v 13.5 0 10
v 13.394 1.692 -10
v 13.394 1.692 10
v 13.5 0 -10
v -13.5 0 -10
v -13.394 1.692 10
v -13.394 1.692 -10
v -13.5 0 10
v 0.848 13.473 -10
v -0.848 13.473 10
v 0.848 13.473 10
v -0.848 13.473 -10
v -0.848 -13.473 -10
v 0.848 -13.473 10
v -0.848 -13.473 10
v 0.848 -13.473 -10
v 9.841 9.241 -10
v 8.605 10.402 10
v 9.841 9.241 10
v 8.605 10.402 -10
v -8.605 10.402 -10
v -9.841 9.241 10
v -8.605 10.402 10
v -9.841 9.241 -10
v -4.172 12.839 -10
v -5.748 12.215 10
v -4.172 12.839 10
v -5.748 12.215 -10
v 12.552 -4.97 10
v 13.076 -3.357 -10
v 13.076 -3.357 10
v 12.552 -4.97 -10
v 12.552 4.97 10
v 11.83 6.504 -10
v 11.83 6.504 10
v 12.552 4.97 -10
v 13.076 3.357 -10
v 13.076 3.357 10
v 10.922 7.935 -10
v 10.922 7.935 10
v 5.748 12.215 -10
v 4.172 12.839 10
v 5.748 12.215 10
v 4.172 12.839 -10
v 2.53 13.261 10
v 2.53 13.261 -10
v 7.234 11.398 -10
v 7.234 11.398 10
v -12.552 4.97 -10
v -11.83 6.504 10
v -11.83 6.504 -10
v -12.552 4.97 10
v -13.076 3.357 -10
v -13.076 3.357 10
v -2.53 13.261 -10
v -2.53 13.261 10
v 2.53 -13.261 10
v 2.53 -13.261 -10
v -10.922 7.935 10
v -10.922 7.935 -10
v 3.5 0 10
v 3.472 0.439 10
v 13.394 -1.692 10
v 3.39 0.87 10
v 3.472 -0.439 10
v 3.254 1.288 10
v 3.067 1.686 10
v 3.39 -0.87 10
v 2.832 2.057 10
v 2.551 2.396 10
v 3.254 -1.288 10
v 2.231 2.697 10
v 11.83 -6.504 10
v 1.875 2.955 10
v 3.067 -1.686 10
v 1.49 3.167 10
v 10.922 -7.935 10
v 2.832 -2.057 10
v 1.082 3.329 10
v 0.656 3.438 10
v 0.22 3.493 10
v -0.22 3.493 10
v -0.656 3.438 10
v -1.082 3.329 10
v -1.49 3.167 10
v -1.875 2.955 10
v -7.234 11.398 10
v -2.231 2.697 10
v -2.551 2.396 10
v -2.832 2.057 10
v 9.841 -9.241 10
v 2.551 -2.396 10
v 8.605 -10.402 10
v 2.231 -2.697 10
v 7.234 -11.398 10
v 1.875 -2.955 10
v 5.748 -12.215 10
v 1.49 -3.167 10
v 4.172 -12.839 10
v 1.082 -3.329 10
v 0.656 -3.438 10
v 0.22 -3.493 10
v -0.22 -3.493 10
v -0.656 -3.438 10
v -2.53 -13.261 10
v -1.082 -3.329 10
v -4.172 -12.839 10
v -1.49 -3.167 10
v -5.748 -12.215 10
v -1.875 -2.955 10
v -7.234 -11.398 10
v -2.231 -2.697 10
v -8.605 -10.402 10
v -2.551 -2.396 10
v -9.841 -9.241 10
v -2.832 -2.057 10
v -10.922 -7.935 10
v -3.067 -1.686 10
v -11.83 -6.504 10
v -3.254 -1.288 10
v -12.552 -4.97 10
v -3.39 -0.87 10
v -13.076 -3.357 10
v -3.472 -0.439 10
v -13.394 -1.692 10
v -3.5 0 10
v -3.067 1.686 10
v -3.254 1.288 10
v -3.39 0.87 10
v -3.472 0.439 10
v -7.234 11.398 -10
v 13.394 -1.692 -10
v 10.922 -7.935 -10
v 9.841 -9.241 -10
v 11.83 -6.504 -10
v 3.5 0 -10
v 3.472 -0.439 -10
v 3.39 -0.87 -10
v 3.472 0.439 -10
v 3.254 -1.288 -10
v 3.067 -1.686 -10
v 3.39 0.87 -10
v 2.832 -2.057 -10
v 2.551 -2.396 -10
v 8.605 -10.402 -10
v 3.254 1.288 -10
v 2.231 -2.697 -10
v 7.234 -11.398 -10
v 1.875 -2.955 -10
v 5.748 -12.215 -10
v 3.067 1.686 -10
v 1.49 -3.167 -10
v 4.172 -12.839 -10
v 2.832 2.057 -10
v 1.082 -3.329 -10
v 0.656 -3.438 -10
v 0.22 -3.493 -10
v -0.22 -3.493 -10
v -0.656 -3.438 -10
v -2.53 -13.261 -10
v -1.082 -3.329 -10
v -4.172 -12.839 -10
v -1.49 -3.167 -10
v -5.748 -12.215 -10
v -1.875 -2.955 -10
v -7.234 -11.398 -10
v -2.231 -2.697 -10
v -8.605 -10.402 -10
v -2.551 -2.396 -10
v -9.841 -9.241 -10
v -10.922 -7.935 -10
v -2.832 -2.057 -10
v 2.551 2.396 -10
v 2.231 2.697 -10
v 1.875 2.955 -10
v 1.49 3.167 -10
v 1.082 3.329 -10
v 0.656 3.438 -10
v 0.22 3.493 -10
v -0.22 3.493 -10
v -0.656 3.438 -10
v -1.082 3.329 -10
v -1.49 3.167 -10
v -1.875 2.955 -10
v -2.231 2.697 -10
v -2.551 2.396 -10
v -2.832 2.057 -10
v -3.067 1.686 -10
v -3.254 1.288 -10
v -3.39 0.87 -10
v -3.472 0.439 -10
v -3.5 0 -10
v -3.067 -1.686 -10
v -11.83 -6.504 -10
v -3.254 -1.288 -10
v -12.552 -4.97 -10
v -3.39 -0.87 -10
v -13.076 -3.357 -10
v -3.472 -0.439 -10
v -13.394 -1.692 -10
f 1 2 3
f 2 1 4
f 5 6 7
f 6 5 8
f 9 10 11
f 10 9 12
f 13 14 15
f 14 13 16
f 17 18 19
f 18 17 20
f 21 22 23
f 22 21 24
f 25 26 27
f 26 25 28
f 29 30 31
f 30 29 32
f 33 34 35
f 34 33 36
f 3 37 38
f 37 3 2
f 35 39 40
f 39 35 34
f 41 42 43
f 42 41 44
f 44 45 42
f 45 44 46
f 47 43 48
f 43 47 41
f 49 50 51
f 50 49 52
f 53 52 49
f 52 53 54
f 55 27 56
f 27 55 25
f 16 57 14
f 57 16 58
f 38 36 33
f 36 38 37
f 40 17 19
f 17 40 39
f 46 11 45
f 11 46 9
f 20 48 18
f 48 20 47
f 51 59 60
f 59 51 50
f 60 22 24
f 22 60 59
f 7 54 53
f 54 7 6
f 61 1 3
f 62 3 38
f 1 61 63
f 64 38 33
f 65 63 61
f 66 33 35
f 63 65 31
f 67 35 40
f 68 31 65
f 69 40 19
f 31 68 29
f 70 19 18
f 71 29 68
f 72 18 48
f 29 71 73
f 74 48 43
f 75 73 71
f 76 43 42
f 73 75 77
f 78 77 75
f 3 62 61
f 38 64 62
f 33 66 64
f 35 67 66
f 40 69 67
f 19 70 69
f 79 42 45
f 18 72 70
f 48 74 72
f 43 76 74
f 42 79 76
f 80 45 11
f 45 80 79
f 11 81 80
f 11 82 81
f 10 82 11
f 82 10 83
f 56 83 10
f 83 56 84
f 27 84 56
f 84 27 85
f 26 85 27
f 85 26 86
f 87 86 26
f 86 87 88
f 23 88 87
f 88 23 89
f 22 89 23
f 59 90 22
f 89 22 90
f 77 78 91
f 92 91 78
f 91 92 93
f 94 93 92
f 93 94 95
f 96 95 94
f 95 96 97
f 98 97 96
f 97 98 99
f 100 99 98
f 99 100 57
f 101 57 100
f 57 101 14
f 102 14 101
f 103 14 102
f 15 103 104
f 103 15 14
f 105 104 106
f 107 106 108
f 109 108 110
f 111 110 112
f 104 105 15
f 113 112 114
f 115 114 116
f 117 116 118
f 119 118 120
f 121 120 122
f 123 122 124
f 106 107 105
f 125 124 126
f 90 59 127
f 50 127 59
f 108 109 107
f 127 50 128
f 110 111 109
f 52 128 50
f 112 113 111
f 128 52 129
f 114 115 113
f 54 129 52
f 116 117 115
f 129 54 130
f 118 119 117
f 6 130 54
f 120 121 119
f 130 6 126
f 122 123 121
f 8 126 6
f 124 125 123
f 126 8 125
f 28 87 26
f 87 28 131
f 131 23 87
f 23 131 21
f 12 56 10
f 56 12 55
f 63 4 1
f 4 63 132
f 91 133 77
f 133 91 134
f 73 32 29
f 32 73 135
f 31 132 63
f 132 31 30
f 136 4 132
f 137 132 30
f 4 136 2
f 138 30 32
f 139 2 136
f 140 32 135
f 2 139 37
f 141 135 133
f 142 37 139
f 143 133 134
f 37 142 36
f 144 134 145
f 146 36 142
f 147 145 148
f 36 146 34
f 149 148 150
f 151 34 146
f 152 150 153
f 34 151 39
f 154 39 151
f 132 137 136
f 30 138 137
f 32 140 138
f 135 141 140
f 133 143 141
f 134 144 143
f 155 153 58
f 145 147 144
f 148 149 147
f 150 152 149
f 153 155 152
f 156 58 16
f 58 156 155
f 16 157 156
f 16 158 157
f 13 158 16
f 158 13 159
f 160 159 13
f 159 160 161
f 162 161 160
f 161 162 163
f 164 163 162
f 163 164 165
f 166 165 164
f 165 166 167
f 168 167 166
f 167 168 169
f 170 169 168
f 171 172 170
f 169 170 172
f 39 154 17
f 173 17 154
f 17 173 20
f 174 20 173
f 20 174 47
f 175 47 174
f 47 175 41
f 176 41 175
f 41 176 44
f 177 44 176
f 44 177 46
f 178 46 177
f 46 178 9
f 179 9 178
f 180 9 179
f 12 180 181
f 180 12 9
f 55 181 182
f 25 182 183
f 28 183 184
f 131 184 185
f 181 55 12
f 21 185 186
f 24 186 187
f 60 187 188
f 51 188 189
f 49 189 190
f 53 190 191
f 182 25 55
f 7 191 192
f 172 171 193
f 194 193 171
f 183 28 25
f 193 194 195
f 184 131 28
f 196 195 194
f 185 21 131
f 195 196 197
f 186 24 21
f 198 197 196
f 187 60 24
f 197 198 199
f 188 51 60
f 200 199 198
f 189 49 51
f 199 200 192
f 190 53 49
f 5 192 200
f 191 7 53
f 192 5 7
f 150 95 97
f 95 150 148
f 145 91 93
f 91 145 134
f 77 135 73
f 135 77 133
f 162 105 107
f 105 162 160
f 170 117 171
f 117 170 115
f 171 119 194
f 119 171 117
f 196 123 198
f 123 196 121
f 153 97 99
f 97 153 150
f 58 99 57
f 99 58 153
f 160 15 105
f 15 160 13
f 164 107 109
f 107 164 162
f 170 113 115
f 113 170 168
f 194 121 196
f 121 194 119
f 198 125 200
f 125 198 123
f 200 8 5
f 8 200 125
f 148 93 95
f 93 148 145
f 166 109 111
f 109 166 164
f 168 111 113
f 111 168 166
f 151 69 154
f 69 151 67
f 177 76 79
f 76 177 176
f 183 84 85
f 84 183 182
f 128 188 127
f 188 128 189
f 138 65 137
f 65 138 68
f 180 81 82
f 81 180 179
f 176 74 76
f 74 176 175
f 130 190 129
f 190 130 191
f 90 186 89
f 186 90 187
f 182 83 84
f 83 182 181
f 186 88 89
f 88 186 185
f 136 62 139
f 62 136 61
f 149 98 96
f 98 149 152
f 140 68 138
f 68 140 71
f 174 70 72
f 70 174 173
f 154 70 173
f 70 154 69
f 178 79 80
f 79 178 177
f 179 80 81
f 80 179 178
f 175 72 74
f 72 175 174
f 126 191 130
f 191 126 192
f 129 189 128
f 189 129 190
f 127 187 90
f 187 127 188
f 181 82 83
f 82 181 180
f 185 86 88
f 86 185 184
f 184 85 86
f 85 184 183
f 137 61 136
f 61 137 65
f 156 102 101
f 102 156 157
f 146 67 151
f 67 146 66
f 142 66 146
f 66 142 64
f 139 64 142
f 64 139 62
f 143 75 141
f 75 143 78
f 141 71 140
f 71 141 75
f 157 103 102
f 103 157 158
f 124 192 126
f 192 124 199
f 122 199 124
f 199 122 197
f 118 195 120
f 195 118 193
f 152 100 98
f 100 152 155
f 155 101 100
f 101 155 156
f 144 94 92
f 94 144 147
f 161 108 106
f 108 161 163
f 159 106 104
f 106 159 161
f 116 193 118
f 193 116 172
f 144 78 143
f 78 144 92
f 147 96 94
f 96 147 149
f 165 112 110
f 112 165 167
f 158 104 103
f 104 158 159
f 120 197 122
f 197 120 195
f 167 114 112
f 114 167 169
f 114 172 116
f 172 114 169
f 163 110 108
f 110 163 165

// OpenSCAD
$fn = 50;


difference() {
	union() {
		translate(v = [0, 0, -10.0000000000]) {
			cylinder(h = 20, r = 13.5000000000);
		}
	}
	union() {
		translate(v = [0, 0, -100.0000000000]) {
			cylinder(h = 200, r = 3.5000000000);
		}
	}
}
